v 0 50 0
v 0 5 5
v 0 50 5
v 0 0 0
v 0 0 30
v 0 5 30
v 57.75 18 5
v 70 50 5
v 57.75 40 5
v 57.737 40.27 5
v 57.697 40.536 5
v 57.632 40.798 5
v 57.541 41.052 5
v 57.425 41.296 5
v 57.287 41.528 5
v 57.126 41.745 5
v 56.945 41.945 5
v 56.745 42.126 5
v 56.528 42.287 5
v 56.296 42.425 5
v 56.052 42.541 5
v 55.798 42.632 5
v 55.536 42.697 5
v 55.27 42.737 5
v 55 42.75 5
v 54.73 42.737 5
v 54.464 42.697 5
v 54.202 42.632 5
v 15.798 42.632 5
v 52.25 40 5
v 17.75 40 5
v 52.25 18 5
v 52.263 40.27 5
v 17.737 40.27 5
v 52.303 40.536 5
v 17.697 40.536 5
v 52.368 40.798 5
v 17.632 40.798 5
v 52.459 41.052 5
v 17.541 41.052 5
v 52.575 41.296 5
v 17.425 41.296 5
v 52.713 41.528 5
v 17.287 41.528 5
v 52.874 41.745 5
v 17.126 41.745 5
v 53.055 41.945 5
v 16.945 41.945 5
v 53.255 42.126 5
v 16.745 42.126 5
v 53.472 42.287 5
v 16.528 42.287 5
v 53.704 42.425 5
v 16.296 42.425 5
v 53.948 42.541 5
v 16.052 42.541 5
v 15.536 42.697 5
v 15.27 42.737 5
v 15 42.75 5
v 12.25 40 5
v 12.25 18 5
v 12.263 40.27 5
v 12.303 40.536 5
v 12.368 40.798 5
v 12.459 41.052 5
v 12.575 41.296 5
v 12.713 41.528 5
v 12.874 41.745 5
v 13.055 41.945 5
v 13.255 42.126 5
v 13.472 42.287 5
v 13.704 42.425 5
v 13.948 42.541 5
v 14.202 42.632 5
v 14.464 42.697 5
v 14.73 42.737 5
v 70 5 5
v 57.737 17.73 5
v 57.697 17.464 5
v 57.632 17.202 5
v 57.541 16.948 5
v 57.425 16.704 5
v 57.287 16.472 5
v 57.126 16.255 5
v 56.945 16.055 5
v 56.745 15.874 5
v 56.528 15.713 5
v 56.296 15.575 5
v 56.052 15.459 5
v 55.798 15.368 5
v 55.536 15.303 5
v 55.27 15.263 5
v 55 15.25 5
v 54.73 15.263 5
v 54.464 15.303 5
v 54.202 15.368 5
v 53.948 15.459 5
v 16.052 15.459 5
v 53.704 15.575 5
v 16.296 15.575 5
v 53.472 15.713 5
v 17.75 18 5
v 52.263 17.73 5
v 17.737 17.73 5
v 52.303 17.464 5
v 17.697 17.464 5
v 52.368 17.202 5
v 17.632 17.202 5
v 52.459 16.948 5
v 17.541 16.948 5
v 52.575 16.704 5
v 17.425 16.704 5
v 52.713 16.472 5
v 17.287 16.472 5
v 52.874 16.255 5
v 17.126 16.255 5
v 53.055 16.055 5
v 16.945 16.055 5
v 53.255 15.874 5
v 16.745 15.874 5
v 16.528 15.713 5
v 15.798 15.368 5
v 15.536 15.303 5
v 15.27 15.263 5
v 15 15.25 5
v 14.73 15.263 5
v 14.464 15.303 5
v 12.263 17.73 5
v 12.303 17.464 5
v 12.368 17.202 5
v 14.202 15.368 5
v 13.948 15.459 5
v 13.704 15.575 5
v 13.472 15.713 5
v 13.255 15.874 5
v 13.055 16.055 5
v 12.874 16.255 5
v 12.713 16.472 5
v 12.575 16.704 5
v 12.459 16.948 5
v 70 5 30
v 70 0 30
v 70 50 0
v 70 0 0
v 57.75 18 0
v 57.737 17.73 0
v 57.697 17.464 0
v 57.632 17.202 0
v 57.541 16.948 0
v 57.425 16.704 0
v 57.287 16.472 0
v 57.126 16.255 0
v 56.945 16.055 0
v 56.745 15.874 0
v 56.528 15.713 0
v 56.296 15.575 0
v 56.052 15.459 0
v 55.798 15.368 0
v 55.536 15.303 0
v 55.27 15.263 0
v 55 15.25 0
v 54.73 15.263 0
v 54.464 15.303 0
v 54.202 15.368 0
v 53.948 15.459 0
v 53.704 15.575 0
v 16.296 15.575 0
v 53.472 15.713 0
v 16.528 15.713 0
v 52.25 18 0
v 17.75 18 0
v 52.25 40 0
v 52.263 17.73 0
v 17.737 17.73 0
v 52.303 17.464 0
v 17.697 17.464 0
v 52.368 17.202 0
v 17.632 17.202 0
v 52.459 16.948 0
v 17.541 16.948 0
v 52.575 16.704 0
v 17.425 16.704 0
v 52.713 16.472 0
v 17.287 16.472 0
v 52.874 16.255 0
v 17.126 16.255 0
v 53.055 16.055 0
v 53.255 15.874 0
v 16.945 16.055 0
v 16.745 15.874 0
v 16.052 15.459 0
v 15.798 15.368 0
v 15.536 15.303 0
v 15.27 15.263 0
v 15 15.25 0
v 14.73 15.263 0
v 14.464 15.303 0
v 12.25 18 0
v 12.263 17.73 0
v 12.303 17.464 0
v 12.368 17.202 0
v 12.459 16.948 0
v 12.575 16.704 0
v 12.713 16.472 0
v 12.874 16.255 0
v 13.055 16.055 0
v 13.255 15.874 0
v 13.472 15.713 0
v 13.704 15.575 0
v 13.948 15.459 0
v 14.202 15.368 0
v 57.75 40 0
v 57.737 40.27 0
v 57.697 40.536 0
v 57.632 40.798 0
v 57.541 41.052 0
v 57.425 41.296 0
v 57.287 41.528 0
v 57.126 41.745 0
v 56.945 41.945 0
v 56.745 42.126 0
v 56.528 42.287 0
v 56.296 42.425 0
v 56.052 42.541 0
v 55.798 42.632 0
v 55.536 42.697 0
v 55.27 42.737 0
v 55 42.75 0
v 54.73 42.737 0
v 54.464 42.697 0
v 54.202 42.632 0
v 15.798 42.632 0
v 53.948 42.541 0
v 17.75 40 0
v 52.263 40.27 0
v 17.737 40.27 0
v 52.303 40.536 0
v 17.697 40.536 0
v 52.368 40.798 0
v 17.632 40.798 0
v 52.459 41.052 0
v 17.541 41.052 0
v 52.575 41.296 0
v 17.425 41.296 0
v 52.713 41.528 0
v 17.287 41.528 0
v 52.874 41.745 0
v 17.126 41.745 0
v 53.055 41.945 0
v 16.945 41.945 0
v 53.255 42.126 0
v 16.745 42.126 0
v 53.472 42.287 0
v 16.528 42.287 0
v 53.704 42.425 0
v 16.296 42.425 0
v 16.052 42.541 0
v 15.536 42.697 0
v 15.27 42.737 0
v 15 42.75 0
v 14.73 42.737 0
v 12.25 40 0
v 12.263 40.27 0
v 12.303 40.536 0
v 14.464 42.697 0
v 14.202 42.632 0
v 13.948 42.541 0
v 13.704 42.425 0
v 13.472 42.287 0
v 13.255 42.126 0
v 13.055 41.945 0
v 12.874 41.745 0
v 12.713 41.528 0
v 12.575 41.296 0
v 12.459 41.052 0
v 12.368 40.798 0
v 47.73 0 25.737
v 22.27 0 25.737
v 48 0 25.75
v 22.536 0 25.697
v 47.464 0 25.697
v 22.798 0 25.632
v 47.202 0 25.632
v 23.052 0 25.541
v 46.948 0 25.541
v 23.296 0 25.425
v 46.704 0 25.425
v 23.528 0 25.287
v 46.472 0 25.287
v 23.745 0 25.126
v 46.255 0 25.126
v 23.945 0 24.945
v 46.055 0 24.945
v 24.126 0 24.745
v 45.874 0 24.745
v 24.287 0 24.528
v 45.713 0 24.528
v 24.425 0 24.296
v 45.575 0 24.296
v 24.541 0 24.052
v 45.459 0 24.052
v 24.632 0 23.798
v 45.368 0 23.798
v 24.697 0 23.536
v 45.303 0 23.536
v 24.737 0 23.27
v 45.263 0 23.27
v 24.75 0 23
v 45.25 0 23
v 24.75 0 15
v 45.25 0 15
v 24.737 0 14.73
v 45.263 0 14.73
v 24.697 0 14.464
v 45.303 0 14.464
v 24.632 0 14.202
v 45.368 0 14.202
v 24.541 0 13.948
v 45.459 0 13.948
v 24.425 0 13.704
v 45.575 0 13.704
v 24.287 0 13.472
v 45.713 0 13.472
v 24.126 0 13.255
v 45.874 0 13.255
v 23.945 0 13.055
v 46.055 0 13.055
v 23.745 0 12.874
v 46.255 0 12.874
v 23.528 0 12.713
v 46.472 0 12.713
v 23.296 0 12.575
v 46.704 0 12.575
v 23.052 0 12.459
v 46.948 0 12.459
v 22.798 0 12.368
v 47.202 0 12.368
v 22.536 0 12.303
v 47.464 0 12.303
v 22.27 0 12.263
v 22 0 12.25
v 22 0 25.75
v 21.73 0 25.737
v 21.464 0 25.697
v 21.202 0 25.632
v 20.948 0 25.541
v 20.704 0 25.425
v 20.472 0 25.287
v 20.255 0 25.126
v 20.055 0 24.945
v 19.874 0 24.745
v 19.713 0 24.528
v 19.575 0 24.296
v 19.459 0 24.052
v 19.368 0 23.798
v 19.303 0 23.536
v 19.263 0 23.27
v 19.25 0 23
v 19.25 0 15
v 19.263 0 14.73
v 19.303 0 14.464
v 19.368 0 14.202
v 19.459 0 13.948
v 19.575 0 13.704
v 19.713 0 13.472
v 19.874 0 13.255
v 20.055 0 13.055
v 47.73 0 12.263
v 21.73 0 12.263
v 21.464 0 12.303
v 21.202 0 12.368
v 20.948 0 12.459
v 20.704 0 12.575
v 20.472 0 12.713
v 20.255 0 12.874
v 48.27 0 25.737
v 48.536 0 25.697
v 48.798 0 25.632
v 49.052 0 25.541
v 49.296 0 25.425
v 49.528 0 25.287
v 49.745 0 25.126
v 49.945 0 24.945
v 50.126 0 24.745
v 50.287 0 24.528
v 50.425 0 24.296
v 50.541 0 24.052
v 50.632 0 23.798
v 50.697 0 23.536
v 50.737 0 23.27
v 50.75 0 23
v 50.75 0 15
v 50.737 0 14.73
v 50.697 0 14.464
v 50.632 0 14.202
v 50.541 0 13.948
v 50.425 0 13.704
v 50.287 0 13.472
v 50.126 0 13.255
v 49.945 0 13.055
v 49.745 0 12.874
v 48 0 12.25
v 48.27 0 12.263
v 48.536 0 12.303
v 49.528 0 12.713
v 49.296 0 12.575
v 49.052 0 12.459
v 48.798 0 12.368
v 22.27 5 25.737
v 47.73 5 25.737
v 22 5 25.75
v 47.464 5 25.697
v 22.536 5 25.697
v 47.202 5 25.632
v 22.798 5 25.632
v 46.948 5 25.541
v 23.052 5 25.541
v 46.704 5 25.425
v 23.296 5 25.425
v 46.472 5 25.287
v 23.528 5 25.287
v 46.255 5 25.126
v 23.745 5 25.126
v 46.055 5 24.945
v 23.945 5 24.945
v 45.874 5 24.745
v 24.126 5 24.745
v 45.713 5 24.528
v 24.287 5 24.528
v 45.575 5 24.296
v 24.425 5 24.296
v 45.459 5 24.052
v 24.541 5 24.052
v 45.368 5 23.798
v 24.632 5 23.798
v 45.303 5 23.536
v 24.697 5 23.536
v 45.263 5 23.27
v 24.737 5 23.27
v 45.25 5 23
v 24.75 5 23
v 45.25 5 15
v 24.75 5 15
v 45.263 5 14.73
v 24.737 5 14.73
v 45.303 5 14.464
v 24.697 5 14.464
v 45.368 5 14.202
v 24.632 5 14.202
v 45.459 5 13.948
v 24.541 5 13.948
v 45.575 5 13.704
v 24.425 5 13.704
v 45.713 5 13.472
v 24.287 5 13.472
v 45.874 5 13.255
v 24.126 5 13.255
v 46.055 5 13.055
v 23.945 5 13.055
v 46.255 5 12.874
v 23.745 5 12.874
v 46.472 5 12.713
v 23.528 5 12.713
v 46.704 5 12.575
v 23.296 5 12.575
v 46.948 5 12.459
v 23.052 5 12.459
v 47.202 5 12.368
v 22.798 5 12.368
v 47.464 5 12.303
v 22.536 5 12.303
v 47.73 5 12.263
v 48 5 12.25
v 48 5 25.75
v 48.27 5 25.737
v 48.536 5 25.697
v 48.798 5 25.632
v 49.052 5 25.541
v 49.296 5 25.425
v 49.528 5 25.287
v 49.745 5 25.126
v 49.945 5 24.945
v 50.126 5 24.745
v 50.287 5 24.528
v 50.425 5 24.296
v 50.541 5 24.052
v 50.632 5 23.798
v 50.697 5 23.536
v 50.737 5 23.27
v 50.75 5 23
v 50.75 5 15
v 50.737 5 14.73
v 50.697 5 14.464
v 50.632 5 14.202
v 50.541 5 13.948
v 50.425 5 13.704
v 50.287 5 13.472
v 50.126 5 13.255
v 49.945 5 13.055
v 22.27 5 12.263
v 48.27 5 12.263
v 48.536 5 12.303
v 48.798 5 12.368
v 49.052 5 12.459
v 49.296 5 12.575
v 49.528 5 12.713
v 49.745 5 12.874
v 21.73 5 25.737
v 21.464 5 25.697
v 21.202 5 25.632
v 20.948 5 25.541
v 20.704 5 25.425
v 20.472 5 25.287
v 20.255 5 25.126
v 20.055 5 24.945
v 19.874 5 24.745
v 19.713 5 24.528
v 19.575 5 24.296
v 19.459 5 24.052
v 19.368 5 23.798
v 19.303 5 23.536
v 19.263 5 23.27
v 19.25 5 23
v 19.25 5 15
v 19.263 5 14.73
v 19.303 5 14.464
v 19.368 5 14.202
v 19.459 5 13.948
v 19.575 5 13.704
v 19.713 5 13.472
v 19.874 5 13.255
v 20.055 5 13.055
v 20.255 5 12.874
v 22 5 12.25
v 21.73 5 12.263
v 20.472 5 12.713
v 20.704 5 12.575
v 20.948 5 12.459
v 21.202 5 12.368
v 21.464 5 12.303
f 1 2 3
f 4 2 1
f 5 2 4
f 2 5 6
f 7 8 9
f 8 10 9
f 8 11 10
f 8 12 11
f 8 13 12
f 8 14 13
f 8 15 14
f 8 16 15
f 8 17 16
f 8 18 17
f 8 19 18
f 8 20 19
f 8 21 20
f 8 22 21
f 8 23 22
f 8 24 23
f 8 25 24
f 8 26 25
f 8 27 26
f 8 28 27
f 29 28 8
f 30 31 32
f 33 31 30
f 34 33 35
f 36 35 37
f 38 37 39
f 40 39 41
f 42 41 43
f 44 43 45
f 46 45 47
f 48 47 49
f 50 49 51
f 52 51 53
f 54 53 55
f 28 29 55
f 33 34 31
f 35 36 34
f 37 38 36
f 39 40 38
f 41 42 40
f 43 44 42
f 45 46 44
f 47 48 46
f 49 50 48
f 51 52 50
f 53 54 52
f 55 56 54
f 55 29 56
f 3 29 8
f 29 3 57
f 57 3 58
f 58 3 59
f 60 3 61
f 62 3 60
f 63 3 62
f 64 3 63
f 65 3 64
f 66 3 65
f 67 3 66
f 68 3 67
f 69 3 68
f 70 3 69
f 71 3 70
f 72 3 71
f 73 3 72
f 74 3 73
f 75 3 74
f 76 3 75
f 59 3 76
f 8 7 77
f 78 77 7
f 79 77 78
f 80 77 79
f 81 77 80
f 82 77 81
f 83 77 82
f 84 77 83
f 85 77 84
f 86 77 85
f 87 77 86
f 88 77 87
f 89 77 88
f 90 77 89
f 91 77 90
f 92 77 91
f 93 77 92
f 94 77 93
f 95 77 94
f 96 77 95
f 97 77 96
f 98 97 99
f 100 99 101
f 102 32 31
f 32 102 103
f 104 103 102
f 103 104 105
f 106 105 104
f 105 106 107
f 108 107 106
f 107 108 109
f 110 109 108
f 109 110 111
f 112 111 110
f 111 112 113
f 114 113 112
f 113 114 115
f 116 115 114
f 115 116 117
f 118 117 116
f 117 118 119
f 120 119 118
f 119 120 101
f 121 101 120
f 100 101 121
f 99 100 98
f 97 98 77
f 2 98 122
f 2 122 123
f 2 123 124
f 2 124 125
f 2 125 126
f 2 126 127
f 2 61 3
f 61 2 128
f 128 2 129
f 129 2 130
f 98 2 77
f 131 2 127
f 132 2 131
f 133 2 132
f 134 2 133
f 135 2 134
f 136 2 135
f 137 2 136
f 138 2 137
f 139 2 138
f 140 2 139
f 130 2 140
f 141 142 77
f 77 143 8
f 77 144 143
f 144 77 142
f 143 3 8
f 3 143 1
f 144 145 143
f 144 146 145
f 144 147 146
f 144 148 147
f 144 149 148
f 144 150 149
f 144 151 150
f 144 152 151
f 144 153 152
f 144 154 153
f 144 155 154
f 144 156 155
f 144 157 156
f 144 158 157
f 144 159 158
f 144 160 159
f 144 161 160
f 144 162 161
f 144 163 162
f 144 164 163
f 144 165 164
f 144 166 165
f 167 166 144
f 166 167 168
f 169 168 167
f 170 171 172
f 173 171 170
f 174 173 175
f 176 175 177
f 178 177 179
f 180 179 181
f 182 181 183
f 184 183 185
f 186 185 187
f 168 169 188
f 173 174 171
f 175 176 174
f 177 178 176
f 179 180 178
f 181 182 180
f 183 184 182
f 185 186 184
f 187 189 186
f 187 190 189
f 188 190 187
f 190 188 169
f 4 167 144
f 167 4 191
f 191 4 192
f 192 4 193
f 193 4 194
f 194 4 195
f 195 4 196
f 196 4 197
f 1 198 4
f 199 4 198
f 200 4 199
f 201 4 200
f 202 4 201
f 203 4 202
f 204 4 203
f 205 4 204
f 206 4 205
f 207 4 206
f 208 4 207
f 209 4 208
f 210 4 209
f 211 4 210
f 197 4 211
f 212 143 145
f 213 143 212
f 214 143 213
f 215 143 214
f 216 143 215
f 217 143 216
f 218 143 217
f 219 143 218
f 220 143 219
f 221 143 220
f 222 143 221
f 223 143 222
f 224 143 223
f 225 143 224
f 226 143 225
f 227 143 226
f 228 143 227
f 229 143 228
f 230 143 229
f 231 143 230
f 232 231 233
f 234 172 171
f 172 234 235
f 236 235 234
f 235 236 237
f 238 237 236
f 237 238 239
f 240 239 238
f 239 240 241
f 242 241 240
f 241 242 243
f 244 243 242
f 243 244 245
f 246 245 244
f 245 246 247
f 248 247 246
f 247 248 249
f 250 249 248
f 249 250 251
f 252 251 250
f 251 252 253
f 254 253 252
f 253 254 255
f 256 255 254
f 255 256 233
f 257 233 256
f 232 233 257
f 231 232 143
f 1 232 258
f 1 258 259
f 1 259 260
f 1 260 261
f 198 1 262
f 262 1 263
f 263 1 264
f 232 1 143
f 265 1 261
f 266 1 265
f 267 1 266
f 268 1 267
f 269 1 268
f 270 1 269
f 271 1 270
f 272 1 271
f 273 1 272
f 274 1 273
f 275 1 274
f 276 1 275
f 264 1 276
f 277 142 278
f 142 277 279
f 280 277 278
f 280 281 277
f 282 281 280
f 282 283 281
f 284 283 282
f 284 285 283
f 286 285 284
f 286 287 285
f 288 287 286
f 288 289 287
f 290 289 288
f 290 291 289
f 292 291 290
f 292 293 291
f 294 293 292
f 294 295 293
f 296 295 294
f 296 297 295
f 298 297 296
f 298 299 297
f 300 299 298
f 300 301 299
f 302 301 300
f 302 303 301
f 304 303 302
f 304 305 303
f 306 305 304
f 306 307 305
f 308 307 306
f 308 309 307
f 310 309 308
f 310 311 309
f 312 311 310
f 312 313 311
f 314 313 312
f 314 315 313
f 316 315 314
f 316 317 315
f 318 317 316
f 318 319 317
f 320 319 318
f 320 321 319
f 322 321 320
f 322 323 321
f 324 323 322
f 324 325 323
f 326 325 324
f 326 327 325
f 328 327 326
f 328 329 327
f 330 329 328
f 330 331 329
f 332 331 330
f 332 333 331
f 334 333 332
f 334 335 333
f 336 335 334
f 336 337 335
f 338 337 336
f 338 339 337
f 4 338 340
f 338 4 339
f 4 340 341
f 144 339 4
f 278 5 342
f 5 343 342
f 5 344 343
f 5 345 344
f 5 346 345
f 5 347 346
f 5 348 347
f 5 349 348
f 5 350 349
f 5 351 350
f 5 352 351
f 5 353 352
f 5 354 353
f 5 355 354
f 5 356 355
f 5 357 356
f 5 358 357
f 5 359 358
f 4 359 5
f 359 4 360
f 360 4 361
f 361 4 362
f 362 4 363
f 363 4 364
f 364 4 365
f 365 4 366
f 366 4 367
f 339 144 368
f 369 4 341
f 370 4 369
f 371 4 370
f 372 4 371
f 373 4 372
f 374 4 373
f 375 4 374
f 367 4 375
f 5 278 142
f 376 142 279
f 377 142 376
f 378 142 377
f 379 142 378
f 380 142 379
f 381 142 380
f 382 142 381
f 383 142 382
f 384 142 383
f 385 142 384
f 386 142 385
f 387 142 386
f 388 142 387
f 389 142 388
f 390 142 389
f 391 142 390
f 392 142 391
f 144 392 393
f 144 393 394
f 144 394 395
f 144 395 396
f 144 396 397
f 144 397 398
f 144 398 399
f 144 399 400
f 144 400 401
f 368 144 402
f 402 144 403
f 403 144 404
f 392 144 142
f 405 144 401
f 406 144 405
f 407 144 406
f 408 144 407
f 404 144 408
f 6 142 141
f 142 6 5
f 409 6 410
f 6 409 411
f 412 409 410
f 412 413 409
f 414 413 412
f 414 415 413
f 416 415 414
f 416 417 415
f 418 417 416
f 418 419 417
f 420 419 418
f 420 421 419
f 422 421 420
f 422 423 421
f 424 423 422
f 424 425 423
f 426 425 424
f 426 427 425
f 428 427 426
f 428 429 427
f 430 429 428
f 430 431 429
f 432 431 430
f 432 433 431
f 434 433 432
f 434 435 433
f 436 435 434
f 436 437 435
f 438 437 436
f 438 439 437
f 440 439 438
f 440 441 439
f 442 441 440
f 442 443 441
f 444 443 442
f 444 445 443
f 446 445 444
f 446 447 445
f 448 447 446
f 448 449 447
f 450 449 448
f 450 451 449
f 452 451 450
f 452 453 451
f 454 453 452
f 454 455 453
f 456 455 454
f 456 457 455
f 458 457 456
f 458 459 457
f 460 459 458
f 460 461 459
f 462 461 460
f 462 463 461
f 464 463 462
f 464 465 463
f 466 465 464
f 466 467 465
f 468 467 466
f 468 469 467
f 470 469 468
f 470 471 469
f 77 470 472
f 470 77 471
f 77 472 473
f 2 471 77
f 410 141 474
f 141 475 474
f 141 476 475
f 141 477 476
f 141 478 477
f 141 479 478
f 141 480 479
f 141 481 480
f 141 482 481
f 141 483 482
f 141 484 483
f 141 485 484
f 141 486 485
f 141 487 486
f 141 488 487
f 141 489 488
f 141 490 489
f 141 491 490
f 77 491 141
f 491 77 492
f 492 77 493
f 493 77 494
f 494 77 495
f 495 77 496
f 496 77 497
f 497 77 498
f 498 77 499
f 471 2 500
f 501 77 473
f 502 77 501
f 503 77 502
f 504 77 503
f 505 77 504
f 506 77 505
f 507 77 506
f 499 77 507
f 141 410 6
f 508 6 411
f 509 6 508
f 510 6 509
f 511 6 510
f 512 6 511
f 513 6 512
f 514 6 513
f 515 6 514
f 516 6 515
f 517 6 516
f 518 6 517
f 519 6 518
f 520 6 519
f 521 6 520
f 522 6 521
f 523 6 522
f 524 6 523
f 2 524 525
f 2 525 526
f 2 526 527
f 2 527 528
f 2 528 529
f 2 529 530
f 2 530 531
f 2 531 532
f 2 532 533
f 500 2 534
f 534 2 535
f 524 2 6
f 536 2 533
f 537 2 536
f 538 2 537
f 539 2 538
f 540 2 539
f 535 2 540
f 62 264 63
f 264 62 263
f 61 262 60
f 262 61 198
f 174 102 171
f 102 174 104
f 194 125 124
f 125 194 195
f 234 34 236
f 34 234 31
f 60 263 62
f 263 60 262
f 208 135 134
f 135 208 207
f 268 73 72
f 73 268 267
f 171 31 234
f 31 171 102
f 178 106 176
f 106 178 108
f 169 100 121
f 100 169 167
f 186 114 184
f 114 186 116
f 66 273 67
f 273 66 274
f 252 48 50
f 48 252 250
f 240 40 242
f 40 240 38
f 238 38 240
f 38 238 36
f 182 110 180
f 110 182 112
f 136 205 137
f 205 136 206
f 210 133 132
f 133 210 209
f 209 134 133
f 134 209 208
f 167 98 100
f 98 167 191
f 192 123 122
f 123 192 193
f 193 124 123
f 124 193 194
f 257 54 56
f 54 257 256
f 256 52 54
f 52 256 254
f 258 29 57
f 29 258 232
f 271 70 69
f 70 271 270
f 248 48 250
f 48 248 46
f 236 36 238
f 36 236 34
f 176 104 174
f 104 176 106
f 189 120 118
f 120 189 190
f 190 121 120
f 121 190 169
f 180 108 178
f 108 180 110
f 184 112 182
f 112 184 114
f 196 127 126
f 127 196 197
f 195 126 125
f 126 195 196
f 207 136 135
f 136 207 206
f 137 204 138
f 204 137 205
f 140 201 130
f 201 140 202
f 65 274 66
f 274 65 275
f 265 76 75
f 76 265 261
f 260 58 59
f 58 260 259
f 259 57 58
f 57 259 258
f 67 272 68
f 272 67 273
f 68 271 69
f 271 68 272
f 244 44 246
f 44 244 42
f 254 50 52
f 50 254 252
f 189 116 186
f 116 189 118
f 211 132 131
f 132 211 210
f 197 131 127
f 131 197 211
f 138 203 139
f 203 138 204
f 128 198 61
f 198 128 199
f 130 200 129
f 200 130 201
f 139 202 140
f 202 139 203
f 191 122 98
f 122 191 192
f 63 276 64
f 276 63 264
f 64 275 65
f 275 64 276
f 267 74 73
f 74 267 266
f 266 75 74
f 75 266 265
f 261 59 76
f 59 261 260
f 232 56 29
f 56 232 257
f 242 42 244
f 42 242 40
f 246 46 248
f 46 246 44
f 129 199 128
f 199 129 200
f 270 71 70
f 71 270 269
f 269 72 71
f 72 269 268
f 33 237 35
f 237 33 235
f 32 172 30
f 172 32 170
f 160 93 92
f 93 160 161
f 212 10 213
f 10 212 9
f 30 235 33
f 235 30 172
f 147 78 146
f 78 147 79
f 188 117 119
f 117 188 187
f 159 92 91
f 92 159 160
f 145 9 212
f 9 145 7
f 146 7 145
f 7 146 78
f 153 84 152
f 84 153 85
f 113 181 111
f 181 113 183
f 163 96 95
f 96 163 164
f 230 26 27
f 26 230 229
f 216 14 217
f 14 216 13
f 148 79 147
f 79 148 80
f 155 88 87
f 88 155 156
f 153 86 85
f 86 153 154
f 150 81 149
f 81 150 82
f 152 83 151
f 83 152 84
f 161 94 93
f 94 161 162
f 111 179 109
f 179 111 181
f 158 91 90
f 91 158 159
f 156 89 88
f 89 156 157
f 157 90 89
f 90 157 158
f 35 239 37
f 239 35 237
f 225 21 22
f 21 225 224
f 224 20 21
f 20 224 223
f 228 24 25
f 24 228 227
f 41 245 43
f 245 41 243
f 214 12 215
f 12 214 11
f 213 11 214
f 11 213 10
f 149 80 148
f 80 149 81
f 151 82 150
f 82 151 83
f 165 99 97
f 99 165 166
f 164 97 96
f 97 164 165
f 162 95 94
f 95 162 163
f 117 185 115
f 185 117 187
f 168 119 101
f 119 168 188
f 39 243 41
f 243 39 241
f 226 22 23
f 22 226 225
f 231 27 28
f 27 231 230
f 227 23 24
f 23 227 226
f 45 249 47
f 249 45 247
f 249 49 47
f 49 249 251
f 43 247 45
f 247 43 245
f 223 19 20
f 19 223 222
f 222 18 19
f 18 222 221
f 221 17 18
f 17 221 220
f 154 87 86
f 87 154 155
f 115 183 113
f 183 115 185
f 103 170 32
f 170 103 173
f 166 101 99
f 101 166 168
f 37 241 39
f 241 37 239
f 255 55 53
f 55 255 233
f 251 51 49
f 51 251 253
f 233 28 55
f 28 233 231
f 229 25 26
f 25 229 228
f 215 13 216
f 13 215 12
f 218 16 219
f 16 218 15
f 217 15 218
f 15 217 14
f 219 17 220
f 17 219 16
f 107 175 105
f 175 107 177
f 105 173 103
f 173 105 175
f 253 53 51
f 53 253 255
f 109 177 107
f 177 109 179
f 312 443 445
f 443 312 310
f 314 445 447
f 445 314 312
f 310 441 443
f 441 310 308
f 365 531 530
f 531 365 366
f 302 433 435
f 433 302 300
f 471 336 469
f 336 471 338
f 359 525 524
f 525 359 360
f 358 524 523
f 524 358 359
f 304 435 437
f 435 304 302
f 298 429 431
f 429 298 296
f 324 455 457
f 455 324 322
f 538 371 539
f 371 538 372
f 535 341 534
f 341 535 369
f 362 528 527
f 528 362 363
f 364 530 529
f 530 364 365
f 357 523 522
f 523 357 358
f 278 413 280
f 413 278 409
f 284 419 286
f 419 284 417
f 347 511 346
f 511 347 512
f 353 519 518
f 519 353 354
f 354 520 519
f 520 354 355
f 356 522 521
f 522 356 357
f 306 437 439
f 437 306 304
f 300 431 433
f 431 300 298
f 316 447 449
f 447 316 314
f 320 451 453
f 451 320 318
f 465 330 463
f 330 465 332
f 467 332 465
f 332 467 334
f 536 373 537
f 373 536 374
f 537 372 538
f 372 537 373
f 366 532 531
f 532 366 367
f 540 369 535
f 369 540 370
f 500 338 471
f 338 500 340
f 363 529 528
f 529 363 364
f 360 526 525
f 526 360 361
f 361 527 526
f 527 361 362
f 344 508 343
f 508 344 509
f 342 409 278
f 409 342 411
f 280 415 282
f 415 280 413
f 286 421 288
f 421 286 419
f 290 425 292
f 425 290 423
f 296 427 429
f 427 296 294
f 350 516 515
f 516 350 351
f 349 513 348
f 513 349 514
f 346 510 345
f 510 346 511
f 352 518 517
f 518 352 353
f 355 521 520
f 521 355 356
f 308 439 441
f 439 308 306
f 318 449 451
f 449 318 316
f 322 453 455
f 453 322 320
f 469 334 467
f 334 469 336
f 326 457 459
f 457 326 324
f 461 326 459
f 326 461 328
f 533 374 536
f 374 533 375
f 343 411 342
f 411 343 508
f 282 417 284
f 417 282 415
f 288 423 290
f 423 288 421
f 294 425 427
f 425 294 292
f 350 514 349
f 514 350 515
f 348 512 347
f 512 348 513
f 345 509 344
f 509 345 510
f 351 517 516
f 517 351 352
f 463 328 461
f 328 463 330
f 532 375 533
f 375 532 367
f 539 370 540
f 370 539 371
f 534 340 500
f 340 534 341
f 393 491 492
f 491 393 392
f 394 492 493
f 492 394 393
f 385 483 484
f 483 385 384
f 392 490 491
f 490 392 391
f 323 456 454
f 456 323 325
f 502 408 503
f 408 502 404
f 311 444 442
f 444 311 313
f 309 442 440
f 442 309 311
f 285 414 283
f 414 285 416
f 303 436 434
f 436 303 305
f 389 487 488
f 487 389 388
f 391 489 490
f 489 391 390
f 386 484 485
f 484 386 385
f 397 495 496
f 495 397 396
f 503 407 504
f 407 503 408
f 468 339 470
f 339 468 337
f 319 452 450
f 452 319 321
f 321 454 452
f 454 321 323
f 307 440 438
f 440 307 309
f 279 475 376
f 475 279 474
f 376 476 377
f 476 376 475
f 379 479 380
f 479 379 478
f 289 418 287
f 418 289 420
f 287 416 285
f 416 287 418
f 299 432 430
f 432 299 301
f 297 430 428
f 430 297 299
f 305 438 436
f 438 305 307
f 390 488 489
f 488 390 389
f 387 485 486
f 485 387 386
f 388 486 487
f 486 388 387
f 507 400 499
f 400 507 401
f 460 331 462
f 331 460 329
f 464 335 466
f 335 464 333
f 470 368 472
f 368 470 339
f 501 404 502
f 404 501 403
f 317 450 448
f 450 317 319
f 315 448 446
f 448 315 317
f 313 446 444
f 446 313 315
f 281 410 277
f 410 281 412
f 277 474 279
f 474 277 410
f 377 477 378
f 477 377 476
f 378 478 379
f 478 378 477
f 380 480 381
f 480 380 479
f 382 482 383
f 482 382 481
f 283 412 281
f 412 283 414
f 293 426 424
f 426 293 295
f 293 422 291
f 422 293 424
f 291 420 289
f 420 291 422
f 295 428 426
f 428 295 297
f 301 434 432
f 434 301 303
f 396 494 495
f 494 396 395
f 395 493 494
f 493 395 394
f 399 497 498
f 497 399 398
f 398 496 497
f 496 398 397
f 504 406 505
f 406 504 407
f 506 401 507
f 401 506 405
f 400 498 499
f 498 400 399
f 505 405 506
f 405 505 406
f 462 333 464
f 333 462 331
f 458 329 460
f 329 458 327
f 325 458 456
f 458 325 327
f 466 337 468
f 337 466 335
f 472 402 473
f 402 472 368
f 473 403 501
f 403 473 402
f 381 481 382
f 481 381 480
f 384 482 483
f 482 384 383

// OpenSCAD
// Original MechIntel educational model. CC0-1.0. Units: mm.
// Not a standardized or load-rated component.
$fn=96;
width=70; depth=50; height=30; wall=5; slot=5.5;
$fn=64;
difference(){
 union(){cube([width,depth,wall]);cube([width,wall,height]);}
 for(x=[15,55]) hull(){translate([x,18,-1]) cylinder(d=slot,h=wall+2);translate([x,40,-1]) cylinder(d=slot,h=wall+2);}
 for(x=[22,48]) hull(){translate([x,-1,15]) rotate([-90,0,0]) cylinder(d=slot,h=wall+2);translate([x,-1,23]) rotate([-90,0,0]) cylinder(d=slot,h=wall+2);}
}
